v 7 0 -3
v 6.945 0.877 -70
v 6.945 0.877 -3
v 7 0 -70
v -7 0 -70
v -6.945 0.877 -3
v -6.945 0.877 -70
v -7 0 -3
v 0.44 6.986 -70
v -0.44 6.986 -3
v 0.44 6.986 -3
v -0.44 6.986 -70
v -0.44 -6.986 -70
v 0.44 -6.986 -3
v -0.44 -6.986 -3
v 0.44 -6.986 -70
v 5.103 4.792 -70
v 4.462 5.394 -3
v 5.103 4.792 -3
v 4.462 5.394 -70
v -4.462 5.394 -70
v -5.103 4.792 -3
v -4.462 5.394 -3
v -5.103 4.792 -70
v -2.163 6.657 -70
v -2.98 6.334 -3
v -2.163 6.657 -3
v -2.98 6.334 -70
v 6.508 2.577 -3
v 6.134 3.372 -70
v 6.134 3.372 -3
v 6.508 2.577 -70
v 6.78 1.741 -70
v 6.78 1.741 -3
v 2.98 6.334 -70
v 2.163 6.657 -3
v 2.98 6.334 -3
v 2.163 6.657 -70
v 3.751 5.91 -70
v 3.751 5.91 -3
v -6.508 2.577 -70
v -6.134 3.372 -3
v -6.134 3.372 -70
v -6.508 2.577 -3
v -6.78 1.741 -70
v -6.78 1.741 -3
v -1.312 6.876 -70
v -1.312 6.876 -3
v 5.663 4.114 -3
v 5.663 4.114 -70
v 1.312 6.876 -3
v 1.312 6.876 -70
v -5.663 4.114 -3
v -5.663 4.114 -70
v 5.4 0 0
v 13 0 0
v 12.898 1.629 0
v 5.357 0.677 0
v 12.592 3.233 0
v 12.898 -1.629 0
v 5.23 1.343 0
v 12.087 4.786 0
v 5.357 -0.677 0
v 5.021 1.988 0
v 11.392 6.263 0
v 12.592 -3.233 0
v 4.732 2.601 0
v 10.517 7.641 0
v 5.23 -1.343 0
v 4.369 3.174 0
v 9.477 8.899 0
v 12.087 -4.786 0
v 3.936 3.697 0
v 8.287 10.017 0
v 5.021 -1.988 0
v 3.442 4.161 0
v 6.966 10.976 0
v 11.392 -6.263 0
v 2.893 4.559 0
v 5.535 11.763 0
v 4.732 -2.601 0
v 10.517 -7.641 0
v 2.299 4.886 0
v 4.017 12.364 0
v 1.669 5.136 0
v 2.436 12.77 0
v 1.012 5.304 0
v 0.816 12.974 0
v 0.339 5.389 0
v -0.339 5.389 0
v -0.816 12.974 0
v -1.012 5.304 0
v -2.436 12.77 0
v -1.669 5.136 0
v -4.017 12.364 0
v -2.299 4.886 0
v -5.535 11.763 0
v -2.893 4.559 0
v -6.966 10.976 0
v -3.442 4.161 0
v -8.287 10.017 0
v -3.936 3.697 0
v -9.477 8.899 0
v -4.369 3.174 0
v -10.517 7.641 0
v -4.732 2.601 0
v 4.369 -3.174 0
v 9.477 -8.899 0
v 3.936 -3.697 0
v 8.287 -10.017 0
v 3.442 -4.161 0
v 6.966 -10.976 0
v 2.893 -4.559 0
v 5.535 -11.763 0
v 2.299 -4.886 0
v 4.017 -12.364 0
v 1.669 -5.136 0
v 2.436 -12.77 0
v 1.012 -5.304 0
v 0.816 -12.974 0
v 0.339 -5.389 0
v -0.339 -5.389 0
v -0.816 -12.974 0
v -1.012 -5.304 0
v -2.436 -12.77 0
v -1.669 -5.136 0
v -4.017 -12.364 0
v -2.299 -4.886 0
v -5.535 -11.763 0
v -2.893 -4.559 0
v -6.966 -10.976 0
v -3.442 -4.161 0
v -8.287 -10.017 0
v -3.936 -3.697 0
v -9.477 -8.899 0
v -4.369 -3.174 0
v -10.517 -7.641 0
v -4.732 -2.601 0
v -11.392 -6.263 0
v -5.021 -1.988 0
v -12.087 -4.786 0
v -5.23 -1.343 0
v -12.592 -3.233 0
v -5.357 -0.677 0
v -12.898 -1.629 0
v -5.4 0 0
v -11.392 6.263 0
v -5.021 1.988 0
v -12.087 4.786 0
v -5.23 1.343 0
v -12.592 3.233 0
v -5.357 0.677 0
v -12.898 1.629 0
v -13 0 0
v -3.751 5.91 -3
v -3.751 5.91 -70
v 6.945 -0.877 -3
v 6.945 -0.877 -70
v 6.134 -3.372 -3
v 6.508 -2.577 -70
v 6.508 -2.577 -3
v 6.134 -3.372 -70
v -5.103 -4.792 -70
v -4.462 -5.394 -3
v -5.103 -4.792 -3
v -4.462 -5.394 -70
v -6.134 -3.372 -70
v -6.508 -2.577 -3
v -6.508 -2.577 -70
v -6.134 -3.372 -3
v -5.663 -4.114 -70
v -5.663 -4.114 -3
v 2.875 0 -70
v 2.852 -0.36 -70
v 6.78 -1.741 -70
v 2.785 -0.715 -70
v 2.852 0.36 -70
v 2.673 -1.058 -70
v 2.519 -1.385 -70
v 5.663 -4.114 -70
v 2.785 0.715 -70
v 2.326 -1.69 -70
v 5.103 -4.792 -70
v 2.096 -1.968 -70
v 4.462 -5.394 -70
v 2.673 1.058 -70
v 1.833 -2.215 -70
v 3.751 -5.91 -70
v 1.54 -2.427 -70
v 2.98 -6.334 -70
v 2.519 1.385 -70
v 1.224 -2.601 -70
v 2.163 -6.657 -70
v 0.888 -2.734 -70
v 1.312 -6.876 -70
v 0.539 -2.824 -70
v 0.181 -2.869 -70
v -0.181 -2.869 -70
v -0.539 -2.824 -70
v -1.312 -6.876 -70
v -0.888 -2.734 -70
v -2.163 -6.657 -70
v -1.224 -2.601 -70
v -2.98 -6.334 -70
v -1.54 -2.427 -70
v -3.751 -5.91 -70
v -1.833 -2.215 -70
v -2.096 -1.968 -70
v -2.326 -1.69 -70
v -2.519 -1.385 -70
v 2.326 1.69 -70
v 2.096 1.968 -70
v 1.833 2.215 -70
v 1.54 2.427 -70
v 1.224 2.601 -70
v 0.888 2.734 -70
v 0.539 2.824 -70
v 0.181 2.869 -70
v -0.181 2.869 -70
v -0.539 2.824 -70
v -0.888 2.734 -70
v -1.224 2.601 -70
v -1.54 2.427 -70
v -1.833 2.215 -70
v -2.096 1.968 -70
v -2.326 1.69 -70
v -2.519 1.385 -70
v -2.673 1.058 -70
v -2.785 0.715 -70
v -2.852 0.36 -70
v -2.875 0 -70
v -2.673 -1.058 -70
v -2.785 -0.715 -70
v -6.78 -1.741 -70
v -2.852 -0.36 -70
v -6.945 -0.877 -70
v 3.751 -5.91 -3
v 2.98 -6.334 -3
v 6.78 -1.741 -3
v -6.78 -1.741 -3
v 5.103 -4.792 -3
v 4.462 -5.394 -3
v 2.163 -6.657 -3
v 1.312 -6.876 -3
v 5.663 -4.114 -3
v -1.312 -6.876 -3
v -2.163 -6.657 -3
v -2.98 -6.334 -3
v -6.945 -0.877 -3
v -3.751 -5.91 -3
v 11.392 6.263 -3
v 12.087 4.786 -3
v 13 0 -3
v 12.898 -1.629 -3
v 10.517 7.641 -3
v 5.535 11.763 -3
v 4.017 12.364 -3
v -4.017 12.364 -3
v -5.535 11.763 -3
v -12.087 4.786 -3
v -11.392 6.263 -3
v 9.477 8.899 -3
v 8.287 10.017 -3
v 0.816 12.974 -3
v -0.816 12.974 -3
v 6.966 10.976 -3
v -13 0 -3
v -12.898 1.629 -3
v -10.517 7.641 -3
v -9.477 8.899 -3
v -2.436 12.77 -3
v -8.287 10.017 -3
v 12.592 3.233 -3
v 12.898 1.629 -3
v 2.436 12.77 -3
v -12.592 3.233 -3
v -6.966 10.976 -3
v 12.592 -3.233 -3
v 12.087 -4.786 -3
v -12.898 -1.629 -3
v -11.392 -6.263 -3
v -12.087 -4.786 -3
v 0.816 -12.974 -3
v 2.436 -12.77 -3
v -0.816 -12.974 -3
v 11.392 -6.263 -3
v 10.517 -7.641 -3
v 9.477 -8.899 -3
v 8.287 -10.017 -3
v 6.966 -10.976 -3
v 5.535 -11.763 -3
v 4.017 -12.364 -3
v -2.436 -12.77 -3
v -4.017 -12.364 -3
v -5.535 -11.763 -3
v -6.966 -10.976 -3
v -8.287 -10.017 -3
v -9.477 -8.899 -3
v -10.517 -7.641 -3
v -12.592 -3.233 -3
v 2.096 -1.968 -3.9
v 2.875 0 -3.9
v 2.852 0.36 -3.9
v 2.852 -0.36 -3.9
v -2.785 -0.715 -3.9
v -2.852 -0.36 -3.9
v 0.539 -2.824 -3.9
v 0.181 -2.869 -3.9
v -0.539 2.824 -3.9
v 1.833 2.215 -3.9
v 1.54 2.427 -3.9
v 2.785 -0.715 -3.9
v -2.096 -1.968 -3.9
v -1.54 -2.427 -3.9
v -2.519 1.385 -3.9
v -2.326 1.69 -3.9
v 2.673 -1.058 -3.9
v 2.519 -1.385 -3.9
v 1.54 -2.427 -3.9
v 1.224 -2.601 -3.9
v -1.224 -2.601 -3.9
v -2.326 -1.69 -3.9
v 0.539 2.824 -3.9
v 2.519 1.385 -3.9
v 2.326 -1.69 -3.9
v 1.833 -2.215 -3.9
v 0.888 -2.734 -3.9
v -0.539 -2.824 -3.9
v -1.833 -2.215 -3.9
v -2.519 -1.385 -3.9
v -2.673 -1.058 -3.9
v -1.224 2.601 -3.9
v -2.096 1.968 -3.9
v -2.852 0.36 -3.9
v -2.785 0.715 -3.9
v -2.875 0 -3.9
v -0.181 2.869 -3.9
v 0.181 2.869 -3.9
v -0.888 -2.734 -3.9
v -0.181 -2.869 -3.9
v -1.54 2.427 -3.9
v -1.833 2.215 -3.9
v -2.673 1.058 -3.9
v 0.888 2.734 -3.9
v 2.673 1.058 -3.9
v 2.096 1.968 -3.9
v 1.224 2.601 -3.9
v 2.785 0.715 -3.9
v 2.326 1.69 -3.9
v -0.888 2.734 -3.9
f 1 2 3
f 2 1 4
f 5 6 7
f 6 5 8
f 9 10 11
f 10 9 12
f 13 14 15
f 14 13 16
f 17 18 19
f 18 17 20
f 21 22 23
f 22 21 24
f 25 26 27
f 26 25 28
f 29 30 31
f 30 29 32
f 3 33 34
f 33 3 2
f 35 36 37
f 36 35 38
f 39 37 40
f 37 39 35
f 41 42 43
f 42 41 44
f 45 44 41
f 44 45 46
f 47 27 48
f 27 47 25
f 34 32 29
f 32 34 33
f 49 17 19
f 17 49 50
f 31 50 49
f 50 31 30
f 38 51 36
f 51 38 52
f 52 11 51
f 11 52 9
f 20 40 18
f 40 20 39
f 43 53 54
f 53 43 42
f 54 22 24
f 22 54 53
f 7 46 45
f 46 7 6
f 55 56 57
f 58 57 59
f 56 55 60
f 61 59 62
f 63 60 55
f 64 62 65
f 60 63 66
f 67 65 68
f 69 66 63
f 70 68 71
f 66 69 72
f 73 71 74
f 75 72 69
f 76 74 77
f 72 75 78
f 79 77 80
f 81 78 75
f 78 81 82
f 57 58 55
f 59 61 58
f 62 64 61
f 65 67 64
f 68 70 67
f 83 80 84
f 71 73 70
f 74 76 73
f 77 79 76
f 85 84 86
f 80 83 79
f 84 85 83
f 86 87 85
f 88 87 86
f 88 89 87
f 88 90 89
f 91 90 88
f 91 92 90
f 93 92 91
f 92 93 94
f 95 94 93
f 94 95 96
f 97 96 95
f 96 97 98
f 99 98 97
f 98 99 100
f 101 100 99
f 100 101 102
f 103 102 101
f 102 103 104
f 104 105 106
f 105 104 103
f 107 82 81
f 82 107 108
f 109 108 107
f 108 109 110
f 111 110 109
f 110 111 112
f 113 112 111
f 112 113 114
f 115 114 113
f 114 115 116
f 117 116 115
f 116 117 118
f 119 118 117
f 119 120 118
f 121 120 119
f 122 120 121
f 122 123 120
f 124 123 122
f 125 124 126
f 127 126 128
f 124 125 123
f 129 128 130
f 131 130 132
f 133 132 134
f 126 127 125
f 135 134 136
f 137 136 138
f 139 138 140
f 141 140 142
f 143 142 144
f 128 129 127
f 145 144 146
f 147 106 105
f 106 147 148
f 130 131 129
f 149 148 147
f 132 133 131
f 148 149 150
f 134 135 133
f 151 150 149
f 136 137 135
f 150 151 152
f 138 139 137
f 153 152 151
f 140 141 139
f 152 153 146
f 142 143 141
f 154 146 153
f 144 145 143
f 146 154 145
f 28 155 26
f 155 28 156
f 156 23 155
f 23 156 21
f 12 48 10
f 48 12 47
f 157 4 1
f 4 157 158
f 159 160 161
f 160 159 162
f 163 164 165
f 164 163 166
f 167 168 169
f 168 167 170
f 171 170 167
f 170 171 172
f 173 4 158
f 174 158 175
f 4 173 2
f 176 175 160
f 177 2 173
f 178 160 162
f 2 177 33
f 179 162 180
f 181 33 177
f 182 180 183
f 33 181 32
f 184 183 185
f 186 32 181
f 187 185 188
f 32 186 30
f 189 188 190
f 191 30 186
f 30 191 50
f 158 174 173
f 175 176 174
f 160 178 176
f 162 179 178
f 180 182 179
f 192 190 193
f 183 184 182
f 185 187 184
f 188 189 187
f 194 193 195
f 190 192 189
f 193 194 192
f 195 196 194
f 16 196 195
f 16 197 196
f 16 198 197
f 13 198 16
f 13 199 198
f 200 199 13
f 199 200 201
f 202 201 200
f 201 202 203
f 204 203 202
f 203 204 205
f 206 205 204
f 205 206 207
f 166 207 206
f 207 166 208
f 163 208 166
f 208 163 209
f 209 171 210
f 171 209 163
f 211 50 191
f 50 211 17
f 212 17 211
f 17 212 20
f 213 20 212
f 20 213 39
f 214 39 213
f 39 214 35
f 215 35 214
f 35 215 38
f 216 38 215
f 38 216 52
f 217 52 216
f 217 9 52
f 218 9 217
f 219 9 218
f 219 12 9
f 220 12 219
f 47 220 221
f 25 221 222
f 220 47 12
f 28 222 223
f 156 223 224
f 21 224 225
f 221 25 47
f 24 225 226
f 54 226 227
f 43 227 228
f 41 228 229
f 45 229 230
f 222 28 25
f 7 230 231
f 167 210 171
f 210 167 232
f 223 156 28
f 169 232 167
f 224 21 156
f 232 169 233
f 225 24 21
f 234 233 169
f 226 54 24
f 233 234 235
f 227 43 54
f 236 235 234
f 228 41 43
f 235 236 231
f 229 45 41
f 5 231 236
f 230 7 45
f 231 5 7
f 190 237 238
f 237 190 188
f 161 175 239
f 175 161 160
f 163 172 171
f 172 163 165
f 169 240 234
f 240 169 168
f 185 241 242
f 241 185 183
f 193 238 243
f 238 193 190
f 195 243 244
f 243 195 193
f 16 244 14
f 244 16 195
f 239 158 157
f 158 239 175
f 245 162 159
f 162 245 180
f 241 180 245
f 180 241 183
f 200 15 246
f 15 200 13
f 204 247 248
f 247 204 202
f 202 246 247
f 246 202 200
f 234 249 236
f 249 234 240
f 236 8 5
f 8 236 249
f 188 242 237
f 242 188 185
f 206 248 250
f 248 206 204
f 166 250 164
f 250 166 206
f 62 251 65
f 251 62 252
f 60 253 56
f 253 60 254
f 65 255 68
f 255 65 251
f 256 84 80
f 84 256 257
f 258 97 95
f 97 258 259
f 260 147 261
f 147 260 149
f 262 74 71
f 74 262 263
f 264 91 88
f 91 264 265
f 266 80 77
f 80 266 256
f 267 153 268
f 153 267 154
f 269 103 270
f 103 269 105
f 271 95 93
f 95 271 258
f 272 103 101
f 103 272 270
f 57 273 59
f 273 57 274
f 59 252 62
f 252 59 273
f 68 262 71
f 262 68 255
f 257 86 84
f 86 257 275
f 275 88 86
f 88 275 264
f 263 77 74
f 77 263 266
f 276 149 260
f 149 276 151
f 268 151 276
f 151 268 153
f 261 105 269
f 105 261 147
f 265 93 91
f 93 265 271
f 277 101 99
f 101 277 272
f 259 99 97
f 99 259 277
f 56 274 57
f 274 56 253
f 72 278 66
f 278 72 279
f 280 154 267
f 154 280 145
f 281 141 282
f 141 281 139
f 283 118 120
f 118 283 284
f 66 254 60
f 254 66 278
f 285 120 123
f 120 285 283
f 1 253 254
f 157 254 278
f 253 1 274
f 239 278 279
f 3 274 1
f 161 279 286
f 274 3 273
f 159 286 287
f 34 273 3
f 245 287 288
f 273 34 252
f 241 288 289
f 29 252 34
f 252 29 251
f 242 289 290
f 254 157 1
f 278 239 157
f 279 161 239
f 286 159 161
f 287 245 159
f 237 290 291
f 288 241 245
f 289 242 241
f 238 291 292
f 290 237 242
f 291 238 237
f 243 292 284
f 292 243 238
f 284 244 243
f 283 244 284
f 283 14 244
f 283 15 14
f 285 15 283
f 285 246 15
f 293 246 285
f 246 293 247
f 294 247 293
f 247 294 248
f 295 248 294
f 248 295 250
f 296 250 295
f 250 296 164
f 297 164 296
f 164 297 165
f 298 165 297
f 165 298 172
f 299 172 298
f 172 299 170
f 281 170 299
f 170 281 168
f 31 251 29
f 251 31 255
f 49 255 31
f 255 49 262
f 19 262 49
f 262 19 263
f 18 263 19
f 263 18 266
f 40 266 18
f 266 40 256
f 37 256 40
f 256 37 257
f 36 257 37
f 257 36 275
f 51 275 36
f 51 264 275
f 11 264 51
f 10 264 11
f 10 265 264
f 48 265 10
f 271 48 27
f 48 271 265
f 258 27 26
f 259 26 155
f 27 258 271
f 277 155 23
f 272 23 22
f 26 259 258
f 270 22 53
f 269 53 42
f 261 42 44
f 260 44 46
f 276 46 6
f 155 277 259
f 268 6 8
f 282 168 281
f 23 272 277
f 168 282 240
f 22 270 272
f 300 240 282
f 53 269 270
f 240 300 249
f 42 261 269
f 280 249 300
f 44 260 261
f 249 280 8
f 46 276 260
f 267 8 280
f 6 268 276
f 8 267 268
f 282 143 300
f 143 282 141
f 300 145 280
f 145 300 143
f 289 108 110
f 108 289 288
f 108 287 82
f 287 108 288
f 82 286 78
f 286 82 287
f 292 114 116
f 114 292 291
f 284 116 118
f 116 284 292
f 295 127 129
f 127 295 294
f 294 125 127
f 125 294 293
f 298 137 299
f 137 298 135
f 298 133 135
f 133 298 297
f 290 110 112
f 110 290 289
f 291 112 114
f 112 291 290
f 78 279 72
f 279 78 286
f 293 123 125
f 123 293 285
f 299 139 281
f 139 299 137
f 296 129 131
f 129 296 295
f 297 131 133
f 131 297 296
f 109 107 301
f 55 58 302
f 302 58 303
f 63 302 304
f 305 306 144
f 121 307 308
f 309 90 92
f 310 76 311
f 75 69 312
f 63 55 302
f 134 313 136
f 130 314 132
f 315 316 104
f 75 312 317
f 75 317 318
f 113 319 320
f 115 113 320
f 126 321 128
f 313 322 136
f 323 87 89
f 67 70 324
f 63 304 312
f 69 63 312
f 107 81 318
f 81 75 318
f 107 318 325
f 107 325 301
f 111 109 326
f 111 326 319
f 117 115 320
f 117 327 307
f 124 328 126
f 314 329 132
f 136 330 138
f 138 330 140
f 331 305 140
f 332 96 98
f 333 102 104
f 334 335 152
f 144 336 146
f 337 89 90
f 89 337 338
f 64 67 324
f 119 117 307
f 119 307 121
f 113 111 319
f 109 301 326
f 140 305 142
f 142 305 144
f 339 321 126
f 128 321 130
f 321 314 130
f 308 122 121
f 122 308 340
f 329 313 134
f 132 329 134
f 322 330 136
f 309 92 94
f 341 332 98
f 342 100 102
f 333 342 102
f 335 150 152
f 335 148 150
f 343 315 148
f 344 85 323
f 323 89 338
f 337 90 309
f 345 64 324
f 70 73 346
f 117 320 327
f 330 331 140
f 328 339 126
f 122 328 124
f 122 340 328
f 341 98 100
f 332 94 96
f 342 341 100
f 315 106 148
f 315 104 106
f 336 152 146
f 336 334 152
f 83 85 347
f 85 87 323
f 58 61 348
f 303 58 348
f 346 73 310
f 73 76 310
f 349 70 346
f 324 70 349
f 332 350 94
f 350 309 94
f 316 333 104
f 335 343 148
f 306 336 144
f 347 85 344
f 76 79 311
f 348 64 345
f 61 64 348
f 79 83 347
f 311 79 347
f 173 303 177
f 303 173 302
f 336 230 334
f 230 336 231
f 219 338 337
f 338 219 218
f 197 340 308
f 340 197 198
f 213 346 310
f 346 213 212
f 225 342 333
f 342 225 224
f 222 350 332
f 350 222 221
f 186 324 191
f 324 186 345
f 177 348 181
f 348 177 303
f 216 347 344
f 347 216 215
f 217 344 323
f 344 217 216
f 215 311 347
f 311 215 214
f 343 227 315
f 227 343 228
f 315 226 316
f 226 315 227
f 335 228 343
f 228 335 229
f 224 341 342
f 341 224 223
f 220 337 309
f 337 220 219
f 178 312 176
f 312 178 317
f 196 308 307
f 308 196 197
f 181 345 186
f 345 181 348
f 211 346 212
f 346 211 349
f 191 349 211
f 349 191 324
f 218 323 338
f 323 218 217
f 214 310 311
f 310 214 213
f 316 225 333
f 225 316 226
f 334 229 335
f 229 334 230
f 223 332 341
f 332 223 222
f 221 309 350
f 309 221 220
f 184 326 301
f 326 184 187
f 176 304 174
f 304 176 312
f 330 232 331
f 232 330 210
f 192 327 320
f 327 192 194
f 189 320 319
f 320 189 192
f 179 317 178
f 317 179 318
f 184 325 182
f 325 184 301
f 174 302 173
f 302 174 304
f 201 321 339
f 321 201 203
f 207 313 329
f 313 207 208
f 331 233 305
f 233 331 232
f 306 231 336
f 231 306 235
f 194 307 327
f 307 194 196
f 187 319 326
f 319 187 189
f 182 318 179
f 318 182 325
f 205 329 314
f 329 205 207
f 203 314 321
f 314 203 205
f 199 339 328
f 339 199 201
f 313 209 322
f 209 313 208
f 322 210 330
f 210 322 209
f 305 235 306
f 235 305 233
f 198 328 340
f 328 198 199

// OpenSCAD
$fn = 50;


difference() {
	union() {
		translate(v = [0, 0, -70.0000000000]) {
			cylinder(h = 70, r = 7.0000000000);
		}
		translate(v = [0, 0, -3.0000000000]) {
			cylinder(h = 3, r = 13.0000000000);
		}
	}
	union() {
		translate(v = [0, 0, 0]) {
			rotate(a = [0, 0, 0]) {
				difference() {
					union() {
						#translate(v = [0, 0, -70.0000000000]) {
							cylinder(h = 70, r = 2.6000000000);
						}
						#translate(v = [0, 0, -3.9000000000]) {
							cylinder(h = 3.9000000000, r = 7.0000000000, r1 = 2.8750000000, r2 = 5.4000000000);
						}
						#translate(v = [0, 0, -70.0000000000]) {
							cylinder(h = 70, r = 2.8750000000);
						}
						#translate(v = [0, 0, -70.0000000000]) {
							cylinder(h = 70, r = 2.6000000000);
						}
					}
					union();
				}
			}
		}
	}
}
